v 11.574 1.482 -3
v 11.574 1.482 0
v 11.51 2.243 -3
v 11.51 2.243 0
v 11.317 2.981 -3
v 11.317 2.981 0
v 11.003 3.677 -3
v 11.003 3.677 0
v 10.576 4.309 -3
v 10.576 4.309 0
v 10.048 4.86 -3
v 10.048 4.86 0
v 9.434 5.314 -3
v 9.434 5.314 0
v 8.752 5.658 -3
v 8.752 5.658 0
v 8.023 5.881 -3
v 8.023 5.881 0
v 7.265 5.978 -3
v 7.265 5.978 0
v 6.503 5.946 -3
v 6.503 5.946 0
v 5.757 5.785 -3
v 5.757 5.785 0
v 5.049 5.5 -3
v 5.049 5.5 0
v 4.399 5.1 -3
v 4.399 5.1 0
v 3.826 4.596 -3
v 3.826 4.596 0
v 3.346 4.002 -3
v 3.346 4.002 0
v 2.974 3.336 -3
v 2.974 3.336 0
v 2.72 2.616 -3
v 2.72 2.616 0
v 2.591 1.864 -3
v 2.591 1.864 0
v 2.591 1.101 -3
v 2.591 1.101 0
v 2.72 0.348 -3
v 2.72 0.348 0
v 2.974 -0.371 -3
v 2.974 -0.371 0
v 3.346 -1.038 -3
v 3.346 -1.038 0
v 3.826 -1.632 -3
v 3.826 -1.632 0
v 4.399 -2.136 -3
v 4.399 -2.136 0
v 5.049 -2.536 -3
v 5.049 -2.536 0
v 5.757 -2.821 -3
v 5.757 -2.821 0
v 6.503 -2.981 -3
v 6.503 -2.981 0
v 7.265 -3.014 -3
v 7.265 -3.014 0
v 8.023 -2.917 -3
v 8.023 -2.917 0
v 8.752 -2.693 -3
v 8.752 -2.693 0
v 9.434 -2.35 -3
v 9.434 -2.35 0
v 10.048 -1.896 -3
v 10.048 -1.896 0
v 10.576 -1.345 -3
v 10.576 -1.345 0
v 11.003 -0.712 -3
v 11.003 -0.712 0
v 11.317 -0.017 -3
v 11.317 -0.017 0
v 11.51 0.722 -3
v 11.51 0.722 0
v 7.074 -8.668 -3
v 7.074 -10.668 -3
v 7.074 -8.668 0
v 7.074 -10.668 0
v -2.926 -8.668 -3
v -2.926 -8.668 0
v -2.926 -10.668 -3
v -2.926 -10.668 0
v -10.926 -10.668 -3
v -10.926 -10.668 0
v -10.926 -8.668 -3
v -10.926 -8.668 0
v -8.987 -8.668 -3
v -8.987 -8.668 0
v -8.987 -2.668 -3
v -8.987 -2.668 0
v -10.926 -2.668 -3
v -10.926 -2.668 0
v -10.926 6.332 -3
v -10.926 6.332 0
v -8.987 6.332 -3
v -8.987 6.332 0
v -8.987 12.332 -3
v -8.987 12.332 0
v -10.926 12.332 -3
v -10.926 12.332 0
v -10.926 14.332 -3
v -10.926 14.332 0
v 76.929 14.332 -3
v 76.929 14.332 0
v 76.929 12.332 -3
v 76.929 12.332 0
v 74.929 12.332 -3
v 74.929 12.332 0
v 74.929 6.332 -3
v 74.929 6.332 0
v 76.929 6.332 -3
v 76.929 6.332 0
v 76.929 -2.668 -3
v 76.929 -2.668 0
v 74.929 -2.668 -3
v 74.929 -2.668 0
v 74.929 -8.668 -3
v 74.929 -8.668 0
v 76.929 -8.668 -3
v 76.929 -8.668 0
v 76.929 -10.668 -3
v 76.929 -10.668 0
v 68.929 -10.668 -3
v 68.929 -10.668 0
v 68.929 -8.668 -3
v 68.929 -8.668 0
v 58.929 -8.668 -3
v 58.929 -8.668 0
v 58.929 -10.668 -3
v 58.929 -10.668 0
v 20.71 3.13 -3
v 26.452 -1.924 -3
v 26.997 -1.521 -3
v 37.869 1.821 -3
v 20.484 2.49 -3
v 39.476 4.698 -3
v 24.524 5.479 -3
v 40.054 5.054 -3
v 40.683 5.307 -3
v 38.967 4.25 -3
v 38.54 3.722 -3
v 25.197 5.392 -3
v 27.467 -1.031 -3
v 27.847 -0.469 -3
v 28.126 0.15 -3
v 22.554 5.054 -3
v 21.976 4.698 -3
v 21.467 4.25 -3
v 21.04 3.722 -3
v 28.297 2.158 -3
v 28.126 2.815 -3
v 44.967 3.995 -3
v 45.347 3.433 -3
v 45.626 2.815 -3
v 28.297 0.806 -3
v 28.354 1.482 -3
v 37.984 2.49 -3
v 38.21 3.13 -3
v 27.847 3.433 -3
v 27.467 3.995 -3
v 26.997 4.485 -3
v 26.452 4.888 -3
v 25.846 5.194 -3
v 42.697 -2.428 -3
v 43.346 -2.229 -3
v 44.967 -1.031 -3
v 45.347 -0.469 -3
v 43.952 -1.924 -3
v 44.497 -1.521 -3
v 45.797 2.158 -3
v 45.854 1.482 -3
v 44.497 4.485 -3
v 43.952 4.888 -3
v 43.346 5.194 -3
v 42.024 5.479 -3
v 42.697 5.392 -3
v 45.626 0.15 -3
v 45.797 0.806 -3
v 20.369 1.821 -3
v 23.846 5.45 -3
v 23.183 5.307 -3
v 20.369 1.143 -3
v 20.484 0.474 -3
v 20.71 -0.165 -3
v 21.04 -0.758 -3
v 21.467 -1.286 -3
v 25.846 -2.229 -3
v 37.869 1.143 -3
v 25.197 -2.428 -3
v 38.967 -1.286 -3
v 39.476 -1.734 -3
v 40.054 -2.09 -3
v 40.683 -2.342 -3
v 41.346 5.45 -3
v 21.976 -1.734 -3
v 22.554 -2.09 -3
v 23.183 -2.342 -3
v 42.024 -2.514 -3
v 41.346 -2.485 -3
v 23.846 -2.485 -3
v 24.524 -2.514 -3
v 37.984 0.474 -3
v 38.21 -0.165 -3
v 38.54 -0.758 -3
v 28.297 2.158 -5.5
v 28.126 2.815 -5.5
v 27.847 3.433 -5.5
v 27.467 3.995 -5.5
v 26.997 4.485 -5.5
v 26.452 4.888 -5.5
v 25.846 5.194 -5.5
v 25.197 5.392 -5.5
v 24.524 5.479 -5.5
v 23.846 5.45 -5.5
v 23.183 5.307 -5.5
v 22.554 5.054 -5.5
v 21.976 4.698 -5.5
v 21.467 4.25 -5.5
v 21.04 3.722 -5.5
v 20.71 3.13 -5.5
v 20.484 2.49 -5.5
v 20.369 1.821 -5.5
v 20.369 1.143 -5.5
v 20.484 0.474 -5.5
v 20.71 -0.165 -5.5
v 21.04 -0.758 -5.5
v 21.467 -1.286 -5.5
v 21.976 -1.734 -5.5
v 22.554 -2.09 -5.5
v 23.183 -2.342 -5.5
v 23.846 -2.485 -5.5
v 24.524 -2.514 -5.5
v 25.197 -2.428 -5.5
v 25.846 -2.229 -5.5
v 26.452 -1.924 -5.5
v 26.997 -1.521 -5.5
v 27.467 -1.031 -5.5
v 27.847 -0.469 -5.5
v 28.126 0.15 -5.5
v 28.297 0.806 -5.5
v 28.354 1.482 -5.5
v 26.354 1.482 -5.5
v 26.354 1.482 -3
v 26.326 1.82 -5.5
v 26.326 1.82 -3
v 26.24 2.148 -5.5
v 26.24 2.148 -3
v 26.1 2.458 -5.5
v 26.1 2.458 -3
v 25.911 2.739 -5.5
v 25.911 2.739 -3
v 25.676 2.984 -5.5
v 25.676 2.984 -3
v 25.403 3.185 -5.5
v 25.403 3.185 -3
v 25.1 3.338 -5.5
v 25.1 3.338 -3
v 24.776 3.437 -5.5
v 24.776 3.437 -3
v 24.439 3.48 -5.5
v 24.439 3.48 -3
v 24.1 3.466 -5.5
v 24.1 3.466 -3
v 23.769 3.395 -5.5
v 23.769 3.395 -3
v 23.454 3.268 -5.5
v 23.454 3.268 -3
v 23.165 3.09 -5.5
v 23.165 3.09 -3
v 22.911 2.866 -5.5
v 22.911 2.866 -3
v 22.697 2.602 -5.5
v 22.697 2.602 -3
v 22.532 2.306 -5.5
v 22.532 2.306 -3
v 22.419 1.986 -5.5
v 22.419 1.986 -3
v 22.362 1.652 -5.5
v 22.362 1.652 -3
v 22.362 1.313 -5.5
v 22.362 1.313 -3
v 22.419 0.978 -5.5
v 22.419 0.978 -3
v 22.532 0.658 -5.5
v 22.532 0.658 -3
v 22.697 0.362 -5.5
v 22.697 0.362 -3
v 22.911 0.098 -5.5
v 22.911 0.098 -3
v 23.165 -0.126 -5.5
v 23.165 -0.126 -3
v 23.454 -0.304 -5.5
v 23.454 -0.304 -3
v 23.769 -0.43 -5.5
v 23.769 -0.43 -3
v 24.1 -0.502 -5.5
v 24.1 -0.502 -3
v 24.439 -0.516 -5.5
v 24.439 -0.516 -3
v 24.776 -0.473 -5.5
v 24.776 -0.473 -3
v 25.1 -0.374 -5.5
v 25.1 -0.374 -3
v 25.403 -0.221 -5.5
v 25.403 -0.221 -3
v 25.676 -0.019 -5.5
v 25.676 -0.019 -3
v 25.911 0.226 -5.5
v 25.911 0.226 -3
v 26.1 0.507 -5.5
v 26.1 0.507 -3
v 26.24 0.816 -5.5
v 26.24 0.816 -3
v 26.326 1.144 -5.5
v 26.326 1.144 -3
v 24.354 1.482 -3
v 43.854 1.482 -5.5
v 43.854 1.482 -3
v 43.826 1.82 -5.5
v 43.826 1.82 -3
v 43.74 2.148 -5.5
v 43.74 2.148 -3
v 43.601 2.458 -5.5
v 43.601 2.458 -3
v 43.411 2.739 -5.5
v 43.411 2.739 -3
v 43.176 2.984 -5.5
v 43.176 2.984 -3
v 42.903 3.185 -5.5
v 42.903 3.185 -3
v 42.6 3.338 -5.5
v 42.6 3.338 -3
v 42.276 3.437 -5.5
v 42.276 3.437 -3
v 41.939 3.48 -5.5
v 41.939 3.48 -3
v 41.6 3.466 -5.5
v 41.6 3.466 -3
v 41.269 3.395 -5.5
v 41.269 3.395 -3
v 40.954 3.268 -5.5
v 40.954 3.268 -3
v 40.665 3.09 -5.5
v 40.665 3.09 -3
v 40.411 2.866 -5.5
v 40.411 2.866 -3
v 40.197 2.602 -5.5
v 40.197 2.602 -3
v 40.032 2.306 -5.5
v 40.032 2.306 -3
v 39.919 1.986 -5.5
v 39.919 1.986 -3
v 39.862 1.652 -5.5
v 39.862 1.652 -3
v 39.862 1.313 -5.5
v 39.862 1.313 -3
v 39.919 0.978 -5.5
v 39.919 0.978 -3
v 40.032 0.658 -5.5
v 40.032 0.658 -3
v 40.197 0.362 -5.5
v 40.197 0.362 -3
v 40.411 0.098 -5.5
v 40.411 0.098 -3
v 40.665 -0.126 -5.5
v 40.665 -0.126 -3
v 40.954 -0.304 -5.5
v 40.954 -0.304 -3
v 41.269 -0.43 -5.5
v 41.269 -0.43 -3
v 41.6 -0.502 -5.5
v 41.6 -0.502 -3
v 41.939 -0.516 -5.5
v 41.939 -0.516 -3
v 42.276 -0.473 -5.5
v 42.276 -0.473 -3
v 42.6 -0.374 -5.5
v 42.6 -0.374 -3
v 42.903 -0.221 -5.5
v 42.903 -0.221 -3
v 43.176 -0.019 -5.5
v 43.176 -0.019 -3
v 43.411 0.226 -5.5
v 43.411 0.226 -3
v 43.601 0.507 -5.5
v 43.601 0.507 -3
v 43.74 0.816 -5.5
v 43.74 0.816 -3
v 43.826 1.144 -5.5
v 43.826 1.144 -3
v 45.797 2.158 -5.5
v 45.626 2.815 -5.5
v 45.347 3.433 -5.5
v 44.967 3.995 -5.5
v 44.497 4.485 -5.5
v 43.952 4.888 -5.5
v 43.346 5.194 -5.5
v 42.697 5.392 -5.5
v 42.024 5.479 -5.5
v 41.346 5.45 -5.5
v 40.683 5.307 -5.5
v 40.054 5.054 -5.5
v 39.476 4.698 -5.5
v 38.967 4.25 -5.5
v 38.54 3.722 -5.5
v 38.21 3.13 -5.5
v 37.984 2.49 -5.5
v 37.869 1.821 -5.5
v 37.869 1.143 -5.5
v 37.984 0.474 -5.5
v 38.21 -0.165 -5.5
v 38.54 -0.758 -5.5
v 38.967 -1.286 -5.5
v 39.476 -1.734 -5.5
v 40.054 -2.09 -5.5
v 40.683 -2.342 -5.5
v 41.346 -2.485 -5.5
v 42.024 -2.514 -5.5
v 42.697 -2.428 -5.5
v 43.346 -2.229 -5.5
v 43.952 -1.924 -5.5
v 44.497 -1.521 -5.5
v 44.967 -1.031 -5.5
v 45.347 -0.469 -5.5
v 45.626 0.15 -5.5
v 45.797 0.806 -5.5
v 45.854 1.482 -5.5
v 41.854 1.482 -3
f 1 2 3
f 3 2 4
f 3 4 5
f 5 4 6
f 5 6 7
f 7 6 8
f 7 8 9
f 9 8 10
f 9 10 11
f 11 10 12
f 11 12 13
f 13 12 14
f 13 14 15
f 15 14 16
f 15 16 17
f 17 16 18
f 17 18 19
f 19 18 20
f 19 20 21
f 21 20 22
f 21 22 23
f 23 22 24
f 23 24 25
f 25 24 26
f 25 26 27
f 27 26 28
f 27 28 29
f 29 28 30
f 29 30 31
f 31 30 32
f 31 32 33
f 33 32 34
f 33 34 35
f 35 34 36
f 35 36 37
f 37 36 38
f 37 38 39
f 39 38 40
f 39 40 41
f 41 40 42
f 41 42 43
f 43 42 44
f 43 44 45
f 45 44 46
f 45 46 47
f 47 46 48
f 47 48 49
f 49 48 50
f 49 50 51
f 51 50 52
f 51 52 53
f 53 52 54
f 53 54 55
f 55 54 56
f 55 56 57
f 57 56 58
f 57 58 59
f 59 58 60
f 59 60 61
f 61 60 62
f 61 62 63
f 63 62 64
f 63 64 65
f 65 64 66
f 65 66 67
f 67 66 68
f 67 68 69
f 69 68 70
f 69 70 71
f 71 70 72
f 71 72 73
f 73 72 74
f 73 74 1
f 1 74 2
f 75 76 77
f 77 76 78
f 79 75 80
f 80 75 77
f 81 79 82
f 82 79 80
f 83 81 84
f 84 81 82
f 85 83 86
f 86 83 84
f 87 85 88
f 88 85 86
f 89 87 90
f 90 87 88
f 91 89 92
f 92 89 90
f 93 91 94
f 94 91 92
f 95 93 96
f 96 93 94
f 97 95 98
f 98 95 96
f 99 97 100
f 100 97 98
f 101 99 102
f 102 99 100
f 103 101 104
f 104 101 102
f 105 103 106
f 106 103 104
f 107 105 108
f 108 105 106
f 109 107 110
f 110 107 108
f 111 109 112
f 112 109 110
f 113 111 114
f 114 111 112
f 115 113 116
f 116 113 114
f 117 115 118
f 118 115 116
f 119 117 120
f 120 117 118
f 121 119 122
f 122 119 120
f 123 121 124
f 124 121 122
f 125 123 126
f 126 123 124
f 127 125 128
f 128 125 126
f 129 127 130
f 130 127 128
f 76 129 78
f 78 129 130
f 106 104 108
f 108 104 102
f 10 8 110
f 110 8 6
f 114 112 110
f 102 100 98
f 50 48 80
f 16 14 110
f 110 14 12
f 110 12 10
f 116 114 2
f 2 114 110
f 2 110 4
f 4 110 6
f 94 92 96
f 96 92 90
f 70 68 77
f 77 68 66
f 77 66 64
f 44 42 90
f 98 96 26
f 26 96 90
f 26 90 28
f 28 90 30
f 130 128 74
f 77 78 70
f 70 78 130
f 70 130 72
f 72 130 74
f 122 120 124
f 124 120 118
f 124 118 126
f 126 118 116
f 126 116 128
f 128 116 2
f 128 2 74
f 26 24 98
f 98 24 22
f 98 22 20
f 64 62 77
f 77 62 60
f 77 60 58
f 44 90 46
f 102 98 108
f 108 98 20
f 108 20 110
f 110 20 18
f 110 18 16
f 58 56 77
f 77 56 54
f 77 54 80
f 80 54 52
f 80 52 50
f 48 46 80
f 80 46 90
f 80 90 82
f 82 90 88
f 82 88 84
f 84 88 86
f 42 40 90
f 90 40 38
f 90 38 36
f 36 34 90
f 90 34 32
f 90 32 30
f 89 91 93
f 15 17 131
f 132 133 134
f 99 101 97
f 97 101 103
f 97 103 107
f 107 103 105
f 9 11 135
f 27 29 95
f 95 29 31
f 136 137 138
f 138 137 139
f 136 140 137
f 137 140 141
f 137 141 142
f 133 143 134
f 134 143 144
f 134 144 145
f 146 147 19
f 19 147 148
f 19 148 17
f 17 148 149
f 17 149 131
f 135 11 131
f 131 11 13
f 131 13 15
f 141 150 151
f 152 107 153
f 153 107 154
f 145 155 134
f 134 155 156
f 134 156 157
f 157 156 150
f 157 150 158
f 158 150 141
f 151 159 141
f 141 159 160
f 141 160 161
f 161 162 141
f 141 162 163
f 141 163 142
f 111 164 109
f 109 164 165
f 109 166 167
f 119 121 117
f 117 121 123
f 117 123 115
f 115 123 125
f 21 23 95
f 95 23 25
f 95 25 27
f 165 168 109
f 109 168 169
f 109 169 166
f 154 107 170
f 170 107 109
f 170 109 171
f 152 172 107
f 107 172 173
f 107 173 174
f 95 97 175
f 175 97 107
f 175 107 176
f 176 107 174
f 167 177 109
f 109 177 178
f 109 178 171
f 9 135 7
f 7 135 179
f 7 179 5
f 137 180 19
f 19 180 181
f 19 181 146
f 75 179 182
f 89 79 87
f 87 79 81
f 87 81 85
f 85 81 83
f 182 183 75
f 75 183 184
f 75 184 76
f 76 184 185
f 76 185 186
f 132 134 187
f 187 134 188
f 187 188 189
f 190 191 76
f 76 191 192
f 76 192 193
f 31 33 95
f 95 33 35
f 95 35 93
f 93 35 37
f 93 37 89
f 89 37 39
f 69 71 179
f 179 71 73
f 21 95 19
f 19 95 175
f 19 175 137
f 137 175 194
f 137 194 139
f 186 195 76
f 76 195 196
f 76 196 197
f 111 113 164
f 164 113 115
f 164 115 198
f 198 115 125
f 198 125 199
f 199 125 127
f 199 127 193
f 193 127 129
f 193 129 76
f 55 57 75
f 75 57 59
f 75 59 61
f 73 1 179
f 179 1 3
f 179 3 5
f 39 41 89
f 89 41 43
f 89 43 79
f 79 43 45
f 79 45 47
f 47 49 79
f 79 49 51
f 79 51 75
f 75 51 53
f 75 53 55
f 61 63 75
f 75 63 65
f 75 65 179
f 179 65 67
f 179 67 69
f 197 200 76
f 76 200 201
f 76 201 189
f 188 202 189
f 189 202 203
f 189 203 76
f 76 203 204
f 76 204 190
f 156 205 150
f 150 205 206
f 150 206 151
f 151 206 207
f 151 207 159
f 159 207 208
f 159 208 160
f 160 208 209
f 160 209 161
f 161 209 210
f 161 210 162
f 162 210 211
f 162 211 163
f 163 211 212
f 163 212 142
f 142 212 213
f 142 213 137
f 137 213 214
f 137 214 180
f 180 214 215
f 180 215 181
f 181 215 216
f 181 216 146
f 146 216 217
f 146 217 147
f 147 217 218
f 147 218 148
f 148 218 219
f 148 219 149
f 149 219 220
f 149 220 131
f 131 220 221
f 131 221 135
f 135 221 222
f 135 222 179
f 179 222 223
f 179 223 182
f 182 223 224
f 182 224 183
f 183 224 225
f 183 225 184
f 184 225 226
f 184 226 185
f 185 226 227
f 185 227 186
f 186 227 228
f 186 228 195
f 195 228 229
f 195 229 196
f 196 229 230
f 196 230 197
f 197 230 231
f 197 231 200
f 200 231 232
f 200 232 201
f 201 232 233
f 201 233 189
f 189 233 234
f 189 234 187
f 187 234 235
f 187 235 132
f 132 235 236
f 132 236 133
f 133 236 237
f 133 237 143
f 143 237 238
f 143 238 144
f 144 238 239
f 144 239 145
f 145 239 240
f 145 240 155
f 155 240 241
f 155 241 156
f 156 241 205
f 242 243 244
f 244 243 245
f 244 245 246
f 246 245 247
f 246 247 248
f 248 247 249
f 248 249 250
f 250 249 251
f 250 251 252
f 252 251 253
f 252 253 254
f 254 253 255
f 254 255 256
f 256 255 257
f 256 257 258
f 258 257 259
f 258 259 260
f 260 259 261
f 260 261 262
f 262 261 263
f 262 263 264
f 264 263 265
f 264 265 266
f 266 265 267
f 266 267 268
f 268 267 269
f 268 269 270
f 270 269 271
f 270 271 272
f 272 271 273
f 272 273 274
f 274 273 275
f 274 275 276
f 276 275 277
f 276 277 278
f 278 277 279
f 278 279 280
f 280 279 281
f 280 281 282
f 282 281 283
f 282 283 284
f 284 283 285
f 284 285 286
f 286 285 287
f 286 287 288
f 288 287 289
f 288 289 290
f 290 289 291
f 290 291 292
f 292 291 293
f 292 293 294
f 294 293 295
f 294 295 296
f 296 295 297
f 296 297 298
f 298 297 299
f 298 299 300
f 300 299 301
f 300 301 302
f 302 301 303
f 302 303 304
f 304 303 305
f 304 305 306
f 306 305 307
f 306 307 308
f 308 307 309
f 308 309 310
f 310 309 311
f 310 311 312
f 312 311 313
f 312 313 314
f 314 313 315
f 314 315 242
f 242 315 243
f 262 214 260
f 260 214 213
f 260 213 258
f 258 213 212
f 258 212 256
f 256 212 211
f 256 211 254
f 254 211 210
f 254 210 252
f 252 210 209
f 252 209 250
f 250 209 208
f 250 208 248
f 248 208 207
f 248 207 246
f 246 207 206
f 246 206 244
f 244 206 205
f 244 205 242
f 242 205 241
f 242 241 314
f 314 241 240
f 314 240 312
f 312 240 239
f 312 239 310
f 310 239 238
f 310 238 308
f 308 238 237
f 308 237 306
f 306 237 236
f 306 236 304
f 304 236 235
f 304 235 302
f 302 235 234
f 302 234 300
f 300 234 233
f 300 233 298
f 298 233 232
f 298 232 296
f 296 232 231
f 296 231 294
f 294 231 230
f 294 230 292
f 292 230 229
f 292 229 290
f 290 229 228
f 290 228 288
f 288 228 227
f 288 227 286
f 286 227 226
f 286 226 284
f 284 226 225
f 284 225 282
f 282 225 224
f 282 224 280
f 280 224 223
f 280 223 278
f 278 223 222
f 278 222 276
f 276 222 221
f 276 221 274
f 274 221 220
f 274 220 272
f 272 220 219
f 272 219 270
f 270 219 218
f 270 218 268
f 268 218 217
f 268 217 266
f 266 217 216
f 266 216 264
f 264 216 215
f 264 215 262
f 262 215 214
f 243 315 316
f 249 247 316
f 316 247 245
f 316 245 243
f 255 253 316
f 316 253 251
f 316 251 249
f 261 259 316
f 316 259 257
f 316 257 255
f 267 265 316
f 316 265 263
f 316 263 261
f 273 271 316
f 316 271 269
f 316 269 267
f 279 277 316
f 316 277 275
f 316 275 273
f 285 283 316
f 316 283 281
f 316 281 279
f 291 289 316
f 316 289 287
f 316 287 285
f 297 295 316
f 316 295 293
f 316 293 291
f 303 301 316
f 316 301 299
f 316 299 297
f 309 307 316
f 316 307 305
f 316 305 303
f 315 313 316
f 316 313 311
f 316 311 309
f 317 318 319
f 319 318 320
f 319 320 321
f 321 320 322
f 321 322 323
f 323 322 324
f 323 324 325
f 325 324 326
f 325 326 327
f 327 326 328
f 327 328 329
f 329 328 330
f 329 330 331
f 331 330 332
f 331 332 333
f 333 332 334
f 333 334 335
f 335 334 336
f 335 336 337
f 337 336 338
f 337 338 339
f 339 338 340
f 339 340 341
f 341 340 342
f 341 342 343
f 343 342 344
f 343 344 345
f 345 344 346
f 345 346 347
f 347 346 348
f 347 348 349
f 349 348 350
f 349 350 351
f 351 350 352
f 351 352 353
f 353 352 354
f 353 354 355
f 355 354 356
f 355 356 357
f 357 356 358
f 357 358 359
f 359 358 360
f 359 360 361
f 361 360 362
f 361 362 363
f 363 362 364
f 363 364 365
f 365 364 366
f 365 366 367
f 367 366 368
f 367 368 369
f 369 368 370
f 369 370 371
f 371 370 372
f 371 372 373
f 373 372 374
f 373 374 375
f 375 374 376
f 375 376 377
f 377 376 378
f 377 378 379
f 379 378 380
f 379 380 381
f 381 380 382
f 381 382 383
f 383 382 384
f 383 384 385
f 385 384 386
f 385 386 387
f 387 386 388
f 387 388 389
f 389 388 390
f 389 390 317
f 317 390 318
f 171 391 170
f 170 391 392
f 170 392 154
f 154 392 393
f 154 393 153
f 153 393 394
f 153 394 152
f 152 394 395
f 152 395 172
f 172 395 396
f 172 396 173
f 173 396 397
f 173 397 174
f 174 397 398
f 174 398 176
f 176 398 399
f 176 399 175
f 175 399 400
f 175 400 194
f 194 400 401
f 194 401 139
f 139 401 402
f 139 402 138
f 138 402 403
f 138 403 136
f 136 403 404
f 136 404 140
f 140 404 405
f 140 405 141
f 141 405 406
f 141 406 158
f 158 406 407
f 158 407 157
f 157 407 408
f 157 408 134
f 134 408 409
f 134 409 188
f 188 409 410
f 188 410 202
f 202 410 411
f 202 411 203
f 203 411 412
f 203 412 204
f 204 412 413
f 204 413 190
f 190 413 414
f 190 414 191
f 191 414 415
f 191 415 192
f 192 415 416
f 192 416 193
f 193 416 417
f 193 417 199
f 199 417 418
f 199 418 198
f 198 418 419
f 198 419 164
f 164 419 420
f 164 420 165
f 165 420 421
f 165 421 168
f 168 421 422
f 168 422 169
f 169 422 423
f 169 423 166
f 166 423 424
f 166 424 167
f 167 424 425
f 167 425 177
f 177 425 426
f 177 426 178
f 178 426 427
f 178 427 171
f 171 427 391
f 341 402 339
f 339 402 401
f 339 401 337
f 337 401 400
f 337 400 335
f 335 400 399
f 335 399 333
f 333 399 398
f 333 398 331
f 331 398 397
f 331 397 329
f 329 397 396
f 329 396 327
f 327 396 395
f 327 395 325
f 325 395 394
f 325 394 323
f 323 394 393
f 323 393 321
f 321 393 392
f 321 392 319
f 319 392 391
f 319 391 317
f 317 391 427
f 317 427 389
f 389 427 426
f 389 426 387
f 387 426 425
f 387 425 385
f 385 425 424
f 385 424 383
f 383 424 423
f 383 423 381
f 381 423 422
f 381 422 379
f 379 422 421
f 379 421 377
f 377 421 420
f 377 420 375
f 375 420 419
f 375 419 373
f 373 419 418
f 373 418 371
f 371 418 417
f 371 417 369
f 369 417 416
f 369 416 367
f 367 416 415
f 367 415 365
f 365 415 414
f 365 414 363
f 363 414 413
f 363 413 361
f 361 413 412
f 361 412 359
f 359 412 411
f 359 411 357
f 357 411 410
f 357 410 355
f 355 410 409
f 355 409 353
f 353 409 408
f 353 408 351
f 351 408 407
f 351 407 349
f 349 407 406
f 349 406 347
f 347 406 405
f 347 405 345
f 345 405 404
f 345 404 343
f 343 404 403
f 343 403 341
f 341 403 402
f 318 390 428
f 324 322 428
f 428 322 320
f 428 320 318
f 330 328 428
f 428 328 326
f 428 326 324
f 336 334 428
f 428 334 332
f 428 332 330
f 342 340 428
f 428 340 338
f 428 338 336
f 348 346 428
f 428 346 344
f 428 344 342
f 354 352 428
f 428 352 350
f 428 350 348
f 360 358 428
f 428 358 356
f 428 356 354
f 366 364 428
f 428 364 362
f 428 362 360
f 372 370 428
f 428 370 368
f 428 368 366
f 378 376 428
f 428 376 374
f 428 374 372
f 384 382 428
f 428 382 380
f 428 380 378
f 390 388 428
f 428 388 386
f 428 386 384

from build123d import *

# Parameters (mm, degrees)
ESBO_O1_R                = 4.5
RESSALTO_EXTRUS_O1_DEPTH = 3
ESBO_O1_9_R              = 4
ESBO_O1_9_R_2            = 2
RESSALTO_EXTRUS_O2_DEPTH = 5.5


with BuildPart() as part:
    # Esboço1 → Ressalto-extrusão1 (new body)
    with BuildSketch(Plane.XY):
        Polygon((7.074470574, -10.667826967), (58.928805727, -10.667826967), (58.928805727, -8.667826967), (68.928805727, -8.667826967), (68.928805727, -10.667826967), (76.928805727, -10.667826967), (76.928805727, -8.667826967), (74.928805727, -8.667826967), (74.928805727, -2.667826967), (76.928805727, -2.667826967), (76.928805727, 6.332173033), (74.928805727, 6.332173033), (74.928805727, 12.332173033), (76.928805727, 12.332173033), (76.928805727, 14.332173033), (-10.925529426, 14.332173033), (-10.925529426, 12.332173033), (-8.987091583, 12.332173033), (-8.987091583, 6.332173033), (-10.925529426, 6.332173033), (-10.925529426, -2.667826967), (-8.987091583, -2.667826967), (-8.987091583, -8.667826967), (-10.925529426, -8.667826967), (-10.925529426, -10.667826967), (-2.925529426, -10.667826967), (-2.925529426, -8.667826967), (7.074470574, -8.667826967), align=None)
        with Locations((7.074470574, 1.482173033)):
            Circle(ESBO_O1_R, mode=Mode.SUBTRACT)
    extrude(amount=-RESSALTO_EXTRUS_O1_DEPTH)

    # Esboço1<9> → Ressalto-extrusão2 (add)
    # profile 1 of 2: a face of its own
    with BuildSketch(Plane.XY):
        with Locations((24.354470574, 1.482173033)):
            Circle(ESBO_O1_9_R)
        with Locations((24.354470574, 1.482173033)):
            Circle(ESBO_O1_9_R_2, mode=Mode.SUBTRACT)
    # profile 2 of 2: a face of its own
    with BuildSketch(Plane.XY):
        with Locations((41.854470574, 1.482173033)):
            Circle(ESBO_O1_9_R)
        with Locations((41.854470574, 1.482173033)):
            Circle(ESBO_O1_9_R_2, mode=Mode.SUBTRACT)
    extrude(amount=-RESSALTO_EXTRUS_O2_DEPTH)


solid = part.part
